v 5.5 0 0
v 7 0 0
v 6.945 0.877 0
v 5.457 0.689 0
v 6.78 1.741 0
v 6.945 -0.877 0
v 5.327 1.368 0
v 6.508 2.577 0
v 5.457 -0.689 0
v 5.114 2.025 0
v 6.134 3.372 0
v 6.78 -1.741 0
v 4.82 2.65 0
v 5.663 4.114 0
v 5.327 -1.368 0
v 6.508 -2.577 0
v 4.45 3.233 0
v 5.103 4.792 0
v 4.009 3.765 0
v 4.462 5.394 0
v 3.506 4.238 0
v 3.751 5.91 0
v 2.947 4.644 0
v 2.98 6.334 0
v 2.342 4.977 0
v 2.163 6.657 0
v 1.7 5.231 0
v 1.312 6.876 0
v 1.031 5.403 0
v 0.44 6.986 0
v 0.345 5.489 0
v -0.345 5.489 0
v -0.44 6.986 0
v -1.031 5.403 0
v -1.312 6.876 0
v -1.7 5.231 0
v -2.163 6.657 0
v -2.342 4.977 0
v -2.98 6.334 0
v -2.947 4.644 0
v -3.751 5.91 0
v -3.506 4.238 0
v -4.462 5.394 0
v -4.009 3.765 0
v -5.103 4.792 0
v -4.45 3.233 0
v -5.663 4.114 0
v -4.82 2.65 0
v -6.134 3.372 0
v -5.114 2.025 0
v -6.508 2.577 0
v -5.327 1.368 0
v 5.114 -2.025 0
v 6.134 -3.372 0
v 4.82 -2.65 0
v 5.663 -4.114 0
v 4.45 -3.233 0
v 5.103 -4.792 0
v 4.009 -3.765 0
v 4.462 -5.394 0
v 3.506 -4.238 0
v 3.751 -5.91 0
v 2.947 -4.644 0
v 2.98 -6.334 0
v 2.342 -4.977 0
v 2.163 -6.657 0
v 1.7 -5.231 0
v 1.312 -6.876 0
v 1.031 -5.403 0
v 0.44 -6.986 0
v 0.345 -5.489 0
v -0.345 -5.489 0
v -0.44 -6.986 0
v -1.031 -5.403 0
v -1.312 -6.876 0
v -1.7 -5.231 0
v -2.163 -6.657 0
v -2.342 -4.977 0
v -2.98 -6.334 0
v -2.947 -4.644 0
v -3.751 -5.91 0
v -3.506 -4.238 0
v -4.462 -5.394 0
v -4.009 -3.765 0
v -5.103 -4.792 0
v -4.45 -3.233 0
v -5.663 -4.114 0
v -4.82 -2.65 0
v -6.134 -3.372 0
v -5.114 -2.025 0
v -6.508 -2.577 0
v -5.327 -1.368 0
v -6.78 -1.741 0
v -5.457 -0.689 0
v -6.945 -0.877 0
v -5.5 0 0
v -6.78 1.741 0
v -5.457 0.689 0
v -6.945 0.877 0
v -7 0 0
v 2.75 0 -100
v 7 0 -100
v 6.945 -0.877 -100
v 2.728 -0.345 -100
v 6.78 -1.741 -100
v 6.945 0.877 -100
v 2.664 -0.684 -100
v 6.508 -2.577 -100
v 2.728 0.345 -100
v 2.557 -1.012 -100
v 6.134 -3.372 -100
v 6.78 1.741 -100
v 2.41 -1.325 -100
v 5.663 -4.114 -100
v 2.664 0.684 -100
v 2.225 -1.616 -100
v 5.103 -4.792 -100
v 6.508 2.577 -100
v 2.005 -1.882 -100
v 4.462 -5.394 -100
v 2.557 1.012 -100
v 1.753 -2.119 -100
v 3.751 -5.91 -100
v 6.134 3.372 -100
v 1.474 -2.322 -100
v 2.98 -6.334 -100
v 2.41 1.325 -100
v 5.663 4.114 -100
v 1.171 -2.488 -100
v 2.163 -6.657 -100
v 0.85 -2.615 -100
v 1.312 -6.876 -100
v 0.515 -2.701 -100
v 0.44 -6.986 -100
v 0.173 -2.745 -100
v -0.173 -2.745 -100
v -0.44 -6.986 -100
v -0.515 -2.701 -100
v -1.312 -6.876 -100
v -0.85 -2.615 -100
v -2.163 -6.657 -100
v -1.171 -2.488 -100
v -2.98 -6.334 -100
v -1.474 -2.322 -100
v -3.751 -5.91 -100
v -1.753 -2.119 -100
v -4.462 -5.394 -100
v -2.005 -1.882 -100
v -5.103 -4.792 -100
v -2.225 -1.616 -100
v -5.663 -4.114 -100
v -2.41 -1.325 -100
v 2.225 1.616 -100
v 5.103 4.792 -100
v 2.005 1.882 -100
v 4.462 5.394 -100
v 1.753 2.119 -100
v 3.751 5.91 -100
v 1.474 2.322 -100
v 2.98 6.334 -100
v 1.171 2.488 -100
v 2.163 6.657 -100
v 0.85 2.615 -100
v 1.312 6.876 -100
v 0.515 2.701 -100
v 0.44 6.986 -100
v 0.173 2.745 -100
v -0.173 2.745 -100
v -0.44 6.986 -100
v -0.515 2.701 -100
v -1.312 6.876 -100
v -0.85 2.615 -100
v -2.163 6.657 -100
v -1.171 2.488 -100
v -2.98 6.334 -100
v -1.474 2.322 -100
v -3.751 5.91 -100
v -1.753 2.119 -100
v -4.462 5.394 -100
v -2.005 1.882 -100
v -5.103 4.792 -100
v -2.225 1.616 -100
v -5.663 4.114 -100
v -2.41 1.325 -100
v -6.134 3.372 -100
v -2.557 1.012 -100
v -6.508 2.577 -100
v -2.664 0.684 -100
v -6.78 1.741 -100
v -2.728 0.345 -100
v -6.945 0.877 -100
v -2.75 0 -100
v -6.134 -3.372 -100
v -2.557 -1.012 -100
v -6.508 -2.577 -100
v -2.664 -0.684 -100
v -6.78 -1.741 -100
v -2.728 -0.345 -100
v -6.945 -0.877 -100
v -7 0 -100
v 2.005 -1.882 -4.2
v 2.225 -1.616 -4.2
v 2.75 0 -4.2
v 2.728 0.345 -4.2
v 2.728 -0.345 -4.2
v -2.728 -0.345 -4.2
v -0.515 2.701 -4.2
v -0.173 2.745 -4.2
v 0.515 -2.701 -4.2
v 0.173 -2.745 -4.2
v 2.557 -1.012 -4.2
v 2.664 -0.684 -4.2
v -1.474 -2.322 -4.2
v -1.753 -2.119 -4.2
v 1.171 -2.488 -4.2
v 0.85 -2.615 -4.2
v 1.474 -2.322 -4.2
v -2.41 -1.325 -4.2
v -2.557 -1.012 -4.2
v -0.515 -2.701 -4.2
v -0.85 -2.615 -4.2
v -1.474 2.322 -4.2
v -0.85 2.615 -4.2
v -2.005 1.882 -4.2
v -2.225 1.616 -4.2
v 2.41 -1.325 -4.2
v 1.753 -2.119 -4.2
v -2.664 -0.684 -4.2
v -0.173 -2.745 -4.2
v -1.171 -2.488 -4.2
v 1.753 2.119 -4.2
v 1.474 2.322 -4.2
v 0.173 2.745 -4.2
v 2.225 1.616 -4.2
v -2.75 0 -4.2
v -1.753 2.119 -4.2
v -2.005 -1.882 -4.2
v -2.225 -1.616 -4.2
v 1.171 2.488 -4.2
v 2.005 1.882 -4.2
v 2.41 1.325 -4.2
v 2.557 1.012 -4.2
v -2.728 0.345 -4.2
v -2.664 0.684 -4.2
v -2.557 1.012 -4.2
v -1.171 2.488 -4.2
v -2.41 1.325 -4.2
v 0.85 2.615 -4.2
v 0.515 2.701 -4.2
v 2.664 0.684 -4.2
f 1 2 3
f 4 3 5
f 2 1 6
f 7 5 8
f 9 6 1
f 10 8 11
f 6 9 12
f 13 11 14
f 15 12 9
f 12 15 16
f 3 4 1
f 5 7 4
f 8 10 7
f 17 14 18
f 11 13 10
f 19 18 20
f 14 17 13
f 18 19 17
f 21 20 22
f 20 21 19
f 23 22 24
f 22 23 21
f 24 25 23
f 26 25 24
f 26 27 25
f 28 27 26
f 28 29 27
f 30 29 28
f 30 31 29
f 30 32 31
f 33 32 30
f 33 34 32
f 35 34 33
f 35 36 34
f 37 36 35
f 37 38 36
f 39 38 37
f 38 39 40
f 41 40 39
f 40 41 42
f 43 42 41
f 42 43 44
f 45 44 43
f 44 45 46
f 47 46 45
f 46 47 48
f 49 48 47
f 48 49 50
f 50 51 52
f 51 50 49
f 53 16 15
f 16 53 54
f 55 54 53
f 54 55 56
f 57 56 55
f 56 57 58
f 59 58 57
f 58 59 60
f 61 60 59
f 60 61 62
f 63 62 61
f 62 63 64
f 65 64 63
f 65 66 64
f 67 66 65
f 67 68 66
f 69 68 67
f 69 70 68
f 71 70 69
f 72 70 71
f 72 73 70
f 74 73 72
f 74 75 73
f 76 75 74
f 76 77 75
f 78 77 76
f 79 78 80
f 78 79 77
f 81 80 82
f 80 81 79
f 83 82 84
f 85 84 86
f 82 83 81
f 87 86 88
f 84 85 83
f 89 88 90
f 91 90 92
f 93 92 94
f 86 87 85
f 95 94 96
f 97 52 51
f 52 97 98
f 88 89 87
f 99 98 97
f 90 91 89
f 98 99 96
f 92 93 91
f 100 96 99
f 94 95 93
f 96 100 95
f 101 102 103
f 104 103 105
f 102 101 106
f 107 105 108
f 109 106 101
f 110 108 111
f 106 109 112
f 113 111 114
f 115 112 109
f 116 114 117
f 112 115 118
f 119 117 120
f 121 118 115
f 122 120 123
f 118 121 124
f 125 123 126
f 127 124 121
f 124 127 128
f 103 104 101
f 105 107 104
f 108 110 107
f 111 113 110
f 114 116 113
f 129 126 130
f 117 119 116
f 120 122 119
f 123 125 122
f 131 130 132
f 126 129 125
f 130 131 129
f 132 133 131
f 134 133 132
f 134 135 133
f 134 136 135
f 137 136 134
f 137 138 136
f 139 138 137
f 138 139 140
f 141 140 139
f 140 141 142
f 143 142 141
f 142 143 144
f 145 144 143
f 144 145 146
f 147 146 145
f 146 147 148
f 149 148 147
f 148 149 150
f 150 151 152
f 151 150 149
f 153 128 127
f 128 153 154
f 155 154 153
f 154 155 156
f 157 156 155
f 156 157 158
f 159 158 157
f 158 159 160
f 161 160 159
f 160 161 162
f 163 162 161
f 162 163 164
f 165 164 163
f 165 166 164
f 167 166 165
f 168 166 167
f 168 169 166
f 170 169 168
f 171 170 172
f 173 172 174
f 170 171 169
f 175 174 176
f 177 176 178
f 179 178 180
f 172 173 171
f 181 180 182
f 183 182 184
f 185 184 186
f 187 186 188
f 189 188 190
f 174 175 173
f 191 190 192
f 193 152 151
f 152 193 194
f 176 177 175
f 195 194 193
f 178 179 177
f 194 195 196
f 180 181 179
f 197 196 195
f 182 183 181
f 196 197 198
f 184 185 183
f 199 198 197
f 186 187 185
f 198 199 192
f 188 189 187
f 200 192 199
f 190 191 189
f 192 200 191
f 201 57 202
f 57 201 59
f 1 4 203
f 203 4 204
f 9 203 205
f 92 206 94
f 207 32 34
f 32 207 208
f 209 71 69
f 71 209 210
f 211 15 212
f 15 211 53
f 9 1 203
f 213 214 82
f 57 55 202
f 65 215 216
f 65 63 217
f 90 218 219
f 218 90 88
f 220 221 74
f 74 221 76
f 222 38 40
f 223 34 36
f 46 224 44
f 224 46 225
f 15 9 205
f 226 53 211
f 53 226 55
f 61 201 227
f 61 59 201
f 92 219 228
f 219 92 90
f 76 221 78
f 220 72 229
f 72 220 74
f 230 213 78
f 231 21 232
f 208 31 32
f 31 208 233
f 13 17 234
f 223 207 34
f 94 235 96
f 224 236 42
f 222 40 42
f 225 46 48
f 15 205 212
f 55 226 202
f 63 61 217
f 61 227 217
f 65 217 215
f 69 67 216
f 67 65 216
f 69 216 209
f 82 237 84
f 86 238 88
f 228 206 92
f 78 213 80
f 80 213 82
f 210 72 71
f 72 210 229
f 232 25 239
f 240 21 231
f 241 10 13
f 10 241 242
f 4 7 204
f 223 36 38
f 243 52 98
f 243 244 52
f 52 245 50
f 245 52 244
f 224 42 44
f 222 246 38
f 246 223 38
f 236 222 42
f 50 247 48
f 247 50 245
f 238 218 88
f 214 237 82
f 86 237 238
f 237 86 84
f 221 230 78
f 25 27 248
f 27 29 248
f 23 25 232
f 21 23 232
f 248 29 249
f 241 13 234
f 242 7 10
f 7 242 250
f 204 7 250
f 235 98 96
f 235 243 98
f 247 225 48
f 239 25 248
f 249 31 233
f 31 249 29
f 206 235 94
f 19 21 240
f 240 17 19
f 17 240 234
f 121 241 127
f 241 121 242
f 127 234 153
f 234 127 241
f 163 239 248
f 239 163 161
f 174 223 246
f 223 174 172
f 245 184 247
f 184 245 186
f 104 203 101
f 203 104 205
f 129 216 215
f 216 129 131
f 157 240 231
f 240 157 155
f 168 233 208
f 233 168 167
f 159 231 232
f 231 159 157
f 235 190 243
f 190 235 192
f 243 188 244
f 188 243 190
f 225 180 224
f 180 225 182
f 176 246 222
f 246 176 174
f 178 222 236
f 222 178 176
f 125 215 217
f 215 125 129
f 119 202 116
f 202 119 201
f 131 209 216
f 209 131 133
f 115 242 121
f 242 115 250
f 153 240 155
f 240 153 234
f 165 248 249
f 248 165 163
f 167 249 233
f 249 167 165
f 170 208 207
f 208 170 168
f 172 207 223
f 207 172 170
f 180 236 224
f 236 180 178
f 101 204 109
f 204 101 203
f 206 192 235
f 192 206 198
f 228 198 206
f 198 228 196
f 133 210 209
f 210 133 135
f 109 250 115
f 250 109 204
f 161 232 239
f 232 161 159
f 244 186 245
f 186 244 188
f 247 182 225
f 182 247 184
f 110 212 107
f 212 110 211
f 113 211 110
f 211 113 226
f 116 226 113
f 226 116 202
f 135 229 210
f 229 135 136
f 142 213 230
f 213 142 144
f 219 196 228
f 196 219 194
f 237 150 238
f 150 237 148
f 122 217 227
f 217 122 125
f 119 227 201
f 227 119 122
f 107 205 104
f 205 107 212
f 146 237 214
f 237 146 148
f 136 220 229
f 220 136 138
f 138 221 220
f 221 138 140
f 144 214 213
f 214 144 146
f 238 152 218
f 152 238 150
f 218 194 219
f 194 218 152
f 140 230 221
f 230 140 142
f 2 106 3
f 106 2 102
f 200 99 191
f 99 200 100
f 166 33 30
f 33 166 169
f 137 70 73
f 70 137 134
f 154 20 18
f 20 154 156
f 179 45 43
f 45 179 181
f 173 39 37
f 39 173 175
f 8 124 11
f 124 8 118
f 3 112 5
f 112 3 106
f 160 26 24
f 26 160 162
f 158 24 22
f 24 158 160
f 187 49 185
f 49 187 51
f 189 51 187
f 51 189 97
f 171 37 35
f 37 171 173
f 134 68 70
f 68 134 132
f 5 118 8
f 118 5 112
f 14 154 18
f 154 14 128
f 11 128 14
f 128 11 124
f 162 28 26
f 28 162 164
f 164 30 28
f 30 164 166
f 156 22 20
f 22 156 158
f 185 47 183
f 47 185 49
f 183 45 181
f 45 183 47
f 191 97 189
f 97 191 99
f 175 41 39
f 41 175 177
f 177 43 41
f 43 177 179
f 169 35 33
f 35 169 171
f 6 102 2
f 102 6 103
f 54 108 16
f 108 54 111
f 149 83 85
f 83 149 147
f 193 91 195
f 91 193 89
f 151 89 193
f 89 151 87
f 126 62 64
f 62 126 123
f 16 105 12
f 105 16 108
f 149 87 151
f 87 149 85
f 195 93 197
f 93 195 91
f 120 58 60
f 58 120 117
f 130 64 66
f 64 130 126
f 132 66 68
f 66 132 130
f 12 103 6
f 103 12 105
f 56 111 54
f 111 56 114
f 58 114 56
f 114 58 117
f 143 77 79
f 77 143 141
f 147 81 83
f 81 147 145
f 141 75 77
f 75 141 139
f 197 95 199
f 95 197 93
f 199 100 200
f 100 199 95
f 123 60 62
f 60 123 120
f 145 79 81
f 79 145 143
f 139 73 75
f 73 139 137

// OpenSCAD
$fn = 50;


difference() {
	union() {
		translate(v = [0, 0, -100.0000000000]) {
			cylinder(h = 100, r = 7.0000000000);
		}
		cylinder(h = 0, r = 13.0000000000);
	}
	union() {
		translate(v = [0, 0, 0]) {
			rotate(a = [0, 0, 0]) {
				difference() {
					union() {
						#translate(v = [0, 0, -100.0000000000]) {
							cylinder(h = 100, r = 2.2500000000);
						}
						#translate(v = [0, 0, -4.2000000000]) {
							cylinder(h = 4.2000000000, r = 7.0000000000, r1 = 2.7500000000, r2 = 5.5000000000);
						}
						#translate(v = [0, 0, -100.0000000000]) {
							cylinder(h = 100, r = 2.7500000000);
						}
						#translate(v = [0, 0, -100.0000000000]) {
							cylinder(h = 100, r = 2.2500000000);
						}
					}
					union();
				}
			}
		}
	}
}
